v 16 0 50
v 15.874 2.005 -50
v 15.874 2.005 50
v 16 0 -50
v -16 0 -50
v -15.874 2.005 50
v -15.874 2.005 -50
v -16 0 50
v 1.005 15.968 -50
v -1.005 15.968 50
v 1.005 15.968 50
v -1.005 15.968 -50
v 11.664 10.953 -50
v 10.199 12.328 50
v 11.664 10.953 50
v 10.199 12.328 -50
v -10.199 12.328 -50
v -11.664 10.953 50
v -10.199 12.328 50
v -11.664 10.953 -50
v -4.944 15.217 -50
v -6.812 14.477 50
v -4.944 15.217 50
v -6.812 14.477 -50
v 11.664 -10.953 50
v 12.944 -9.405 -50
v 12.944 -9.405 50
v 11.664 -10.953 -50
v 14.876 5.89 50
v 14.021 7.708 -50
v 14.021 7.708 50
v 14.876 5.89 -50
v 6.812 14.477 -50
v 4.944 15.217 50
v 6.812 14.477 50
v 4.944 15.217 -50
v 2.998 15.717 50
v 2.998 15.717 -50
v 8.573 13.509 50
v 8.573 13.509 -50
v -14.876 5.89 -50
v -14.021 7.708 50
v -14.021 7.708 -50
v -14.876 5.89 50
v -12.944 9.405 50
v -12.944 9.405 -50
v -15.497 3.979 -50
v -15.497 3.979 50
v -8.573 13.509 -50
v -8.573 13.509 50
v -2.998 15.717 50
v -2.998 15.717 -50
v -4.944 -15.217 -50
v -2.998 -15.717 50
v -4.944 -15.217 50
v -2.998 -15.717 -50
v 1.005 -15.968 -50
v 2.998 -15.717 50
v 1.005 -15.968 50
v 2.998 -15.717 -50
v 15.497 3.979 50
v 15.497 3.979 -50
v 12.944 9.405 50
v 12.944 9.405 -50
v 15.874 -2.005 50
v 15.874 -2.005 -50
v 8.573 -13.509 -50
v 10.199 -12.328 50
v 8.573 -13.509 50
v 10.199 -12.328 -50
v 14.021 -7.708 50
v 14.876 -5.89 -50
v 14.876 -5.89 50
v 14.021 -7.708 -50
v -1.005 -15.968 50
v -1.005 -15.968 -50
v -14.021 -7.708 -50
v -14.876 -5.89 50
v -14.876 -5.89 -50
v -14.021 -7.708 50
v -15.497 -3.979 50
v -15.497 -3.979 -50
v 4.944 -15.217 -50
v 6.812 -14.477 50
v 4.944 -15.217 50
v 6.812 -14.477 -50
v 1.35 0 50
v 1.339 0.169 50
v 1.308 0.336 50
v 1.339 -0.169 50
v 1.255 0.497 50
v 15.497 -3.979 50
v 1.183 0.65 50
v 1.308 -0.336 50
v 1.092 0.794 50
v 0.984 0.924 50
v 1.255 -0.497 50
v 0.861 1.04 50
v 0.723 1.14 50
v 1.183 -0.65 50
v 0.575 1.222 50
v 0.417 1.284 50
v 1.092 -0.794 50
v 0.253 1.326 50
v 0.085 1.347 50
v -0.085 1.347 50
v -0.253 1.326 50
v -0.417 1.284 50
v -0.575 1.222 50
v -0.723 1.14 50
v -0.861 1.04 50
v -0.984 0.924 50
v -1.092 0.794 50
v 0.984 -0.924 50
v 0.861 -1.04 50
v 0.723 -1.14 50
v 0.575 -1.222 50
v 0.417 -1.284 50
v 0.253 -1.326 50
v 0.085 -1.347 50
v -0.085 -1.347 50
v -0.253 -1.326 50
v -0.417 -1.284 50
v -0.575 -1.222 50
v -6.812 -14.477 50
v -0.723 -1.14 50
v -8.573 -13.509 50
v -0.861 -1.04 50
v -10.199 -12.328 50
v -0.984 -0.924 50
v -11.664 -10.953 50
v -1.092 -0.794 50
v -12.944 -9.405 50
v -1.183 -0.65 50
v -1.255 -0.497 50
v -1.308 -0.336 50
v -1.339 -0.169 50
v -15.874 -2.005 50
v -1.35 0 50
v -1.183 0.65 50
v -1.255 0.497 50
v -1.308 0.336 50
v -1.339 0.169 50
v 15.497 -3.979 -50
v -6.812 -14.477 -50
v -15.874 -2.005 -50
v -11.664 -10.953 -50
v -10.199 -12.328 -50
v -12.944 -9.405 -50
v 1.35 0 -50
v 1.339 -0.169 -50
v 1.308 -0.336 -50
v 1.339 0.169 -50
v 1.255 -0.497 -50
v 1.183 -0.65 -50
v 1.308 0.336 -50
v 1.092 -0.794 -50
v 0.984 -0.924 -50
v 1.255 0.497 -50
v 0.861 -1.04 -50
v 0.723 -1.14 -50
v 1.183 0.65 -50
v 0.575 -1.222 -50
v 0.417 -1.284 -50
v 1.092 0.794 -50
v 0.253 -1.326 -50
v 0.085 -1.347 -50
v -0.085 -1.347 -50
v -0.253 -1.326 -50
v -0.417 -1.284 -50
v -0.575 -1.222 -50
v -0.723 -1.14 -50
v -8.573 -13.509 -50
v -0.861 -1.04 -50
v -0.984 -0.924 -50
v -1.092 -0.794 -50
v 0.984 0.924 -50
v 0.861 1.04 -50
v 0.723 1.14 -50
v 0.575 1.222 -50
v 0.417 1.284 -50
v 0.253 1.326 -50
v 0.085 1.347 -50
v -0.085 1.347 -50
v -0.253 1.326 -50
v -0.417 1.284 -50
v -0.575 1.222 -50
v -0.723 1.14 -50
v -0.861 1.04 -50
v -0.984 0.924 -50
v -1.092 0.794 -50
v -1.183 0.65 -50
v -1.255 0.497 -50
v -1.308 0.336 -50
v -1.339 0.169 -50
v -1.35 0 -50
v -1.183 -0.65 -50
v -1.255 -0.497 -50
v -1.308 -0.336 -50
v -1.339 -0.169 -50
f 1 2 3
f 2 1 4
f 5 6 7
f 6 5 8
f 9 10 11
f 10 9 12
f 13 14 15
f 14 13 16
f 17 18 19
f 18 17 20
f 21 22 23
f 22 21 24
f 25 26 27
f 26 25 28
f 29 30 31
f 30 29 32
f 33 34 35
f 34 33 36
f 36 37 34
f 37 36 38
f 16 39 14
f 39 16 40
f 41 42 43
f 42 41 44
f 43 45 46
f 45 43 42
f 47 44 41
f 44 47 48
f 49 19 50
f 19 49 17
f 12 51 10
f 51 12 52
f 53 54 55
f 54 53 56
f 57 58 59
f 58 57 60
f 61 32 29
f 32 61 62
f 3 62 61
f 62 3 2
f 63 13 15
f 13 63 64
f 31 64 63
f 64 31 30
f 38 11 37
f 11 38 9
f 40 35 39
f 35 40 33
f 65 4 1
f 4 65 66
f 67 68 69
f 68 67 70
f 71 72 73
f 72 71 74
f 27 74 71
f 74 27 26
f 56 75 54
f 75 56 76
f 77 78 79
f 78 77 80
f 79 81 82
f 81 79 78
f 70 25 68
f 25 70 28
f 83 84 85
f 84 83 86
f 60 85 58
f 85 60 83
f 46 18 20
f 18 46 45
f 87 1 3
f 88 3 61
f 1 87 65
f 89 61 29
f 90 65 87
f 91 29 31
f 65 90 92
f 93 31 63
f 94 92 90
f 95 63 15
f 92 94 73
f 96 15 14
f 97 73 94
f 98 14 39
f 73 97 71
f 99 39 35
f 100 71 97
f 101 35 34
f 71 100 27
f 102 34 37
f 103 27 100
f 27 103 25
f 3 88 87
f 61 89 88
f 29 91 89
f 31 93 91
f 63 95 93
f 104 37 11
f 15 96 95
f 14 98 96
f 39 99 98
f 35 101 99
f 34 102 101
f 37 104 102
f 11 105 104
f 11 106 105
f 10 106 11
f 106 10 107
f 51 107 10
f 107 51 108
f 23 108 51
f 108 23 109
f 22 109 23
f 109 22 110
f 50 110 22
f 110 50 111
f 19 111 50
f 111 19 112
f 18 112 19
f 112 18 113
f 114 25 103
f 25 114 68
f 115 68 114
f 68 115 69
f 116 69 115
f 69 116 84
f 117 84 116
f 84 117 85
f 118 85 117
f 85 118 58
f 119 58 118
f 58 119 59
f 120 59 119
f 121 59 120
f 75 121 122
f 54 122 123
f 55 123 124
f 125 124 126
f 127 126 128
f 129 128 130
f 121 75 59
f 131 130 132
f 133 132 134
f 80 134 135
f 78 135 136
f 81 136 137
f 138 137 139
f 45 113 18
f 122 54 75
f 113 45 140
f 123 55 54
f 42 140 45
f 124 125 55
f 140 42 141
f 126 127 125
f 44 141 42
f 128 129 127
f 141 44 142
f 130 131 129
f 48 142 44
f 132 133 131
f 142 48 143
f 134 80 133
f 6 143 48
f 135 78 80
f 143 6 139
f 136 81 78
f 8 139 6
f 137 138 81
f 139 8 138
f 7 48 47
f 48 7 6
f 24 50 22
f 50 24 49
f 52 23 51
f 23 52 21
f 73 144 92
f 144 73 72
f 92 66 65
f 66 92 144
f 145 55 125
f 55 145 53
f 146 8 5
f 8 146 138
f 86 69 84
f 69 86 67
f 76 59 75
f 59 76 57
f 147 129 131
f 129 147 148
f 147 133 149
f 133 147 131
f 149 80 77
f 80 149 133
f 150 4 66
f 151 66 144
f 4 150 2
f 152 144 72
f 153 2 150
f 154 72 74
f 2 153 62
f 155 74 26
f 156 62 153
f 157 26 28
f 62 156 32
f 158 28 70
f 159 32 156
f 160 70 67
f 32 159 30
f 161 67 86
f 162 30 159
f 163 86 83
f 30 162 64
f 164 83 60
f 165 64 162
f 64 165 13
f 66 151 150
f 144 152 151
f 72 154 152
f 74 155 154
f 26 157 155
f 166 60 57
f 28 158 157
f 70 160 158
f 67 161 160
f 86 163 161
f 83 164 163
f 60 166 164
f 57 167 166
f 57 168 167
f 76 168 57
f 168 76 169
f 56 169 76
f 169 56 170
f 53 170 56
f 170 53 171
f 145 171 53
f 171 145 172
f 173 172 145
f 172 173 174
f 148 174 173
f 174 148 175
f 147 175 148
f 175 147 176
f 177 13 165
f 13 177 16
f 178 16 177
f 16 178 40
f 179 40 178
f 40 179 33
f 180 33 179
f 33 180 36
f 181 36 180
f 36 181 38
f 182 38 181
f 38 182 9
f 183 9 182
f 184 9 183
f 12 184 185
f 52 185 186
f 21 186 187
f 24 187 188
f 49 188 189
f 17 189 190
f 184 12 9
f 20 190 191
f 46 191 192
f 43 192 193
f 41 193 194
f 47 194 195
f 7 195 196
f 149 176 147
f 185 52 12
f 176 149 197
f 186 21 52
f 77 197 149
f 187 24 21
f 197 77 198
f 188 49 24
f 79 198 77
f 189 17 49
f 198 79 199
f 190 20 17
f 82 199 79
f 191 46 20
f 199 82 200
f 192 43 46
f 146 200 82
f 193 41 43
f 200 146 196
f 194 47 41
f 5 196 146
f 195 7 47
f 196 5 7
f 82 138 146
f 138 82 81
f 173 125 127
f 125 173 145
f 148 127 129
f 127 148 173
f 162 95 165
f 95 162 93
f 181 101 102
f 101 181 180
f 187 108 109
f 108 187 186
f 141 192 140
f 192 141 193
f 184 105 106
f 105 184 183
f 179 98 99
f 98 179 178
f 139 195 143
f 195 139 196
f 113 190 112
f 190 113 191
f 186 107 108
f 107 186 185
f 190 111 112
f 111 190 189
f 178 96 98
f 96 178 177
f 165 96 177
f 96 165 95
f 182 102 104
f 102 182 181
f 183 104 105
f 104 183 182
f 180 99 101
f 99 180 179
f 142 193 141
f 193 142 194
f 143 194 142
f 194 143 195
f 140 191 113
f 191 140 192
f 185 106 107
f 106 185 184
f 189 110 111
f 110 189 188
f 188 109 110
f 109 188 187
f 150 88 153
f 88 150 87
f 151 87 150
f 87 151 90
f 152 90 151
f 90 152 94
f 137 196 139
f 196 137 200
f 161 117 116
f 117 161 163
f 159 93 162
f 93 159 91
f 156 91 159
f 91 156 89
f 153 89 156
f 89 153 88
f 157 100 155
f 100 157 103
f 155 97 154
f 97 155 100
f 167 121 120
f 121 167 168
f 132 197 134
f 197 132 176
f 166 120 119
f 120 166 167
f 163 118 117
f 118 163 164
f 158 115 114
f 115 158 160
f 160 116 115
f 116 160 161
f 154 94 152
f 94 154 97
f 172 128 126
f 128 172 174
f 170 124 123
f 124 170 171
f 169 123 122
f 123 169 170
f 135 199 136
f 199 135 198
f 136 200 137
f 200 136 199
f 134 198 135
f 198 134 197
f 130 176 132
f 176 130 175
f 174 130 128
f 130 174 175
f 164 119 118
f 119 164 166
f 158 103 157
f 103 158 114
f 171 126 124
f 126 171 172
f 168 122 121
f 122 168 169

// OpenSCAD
$fn = 50;


difference() {
	union() {
		translate(v = [0, 0, -50.0000000000]) {
			cylinder(h = 100, r = 16.0000000000);
		}
	}
	union() {
		translate(v = [0, 0, -100.0000000000]) {
			cylinder(h = 200, r = 1.3500000000);
		}
	}
}
